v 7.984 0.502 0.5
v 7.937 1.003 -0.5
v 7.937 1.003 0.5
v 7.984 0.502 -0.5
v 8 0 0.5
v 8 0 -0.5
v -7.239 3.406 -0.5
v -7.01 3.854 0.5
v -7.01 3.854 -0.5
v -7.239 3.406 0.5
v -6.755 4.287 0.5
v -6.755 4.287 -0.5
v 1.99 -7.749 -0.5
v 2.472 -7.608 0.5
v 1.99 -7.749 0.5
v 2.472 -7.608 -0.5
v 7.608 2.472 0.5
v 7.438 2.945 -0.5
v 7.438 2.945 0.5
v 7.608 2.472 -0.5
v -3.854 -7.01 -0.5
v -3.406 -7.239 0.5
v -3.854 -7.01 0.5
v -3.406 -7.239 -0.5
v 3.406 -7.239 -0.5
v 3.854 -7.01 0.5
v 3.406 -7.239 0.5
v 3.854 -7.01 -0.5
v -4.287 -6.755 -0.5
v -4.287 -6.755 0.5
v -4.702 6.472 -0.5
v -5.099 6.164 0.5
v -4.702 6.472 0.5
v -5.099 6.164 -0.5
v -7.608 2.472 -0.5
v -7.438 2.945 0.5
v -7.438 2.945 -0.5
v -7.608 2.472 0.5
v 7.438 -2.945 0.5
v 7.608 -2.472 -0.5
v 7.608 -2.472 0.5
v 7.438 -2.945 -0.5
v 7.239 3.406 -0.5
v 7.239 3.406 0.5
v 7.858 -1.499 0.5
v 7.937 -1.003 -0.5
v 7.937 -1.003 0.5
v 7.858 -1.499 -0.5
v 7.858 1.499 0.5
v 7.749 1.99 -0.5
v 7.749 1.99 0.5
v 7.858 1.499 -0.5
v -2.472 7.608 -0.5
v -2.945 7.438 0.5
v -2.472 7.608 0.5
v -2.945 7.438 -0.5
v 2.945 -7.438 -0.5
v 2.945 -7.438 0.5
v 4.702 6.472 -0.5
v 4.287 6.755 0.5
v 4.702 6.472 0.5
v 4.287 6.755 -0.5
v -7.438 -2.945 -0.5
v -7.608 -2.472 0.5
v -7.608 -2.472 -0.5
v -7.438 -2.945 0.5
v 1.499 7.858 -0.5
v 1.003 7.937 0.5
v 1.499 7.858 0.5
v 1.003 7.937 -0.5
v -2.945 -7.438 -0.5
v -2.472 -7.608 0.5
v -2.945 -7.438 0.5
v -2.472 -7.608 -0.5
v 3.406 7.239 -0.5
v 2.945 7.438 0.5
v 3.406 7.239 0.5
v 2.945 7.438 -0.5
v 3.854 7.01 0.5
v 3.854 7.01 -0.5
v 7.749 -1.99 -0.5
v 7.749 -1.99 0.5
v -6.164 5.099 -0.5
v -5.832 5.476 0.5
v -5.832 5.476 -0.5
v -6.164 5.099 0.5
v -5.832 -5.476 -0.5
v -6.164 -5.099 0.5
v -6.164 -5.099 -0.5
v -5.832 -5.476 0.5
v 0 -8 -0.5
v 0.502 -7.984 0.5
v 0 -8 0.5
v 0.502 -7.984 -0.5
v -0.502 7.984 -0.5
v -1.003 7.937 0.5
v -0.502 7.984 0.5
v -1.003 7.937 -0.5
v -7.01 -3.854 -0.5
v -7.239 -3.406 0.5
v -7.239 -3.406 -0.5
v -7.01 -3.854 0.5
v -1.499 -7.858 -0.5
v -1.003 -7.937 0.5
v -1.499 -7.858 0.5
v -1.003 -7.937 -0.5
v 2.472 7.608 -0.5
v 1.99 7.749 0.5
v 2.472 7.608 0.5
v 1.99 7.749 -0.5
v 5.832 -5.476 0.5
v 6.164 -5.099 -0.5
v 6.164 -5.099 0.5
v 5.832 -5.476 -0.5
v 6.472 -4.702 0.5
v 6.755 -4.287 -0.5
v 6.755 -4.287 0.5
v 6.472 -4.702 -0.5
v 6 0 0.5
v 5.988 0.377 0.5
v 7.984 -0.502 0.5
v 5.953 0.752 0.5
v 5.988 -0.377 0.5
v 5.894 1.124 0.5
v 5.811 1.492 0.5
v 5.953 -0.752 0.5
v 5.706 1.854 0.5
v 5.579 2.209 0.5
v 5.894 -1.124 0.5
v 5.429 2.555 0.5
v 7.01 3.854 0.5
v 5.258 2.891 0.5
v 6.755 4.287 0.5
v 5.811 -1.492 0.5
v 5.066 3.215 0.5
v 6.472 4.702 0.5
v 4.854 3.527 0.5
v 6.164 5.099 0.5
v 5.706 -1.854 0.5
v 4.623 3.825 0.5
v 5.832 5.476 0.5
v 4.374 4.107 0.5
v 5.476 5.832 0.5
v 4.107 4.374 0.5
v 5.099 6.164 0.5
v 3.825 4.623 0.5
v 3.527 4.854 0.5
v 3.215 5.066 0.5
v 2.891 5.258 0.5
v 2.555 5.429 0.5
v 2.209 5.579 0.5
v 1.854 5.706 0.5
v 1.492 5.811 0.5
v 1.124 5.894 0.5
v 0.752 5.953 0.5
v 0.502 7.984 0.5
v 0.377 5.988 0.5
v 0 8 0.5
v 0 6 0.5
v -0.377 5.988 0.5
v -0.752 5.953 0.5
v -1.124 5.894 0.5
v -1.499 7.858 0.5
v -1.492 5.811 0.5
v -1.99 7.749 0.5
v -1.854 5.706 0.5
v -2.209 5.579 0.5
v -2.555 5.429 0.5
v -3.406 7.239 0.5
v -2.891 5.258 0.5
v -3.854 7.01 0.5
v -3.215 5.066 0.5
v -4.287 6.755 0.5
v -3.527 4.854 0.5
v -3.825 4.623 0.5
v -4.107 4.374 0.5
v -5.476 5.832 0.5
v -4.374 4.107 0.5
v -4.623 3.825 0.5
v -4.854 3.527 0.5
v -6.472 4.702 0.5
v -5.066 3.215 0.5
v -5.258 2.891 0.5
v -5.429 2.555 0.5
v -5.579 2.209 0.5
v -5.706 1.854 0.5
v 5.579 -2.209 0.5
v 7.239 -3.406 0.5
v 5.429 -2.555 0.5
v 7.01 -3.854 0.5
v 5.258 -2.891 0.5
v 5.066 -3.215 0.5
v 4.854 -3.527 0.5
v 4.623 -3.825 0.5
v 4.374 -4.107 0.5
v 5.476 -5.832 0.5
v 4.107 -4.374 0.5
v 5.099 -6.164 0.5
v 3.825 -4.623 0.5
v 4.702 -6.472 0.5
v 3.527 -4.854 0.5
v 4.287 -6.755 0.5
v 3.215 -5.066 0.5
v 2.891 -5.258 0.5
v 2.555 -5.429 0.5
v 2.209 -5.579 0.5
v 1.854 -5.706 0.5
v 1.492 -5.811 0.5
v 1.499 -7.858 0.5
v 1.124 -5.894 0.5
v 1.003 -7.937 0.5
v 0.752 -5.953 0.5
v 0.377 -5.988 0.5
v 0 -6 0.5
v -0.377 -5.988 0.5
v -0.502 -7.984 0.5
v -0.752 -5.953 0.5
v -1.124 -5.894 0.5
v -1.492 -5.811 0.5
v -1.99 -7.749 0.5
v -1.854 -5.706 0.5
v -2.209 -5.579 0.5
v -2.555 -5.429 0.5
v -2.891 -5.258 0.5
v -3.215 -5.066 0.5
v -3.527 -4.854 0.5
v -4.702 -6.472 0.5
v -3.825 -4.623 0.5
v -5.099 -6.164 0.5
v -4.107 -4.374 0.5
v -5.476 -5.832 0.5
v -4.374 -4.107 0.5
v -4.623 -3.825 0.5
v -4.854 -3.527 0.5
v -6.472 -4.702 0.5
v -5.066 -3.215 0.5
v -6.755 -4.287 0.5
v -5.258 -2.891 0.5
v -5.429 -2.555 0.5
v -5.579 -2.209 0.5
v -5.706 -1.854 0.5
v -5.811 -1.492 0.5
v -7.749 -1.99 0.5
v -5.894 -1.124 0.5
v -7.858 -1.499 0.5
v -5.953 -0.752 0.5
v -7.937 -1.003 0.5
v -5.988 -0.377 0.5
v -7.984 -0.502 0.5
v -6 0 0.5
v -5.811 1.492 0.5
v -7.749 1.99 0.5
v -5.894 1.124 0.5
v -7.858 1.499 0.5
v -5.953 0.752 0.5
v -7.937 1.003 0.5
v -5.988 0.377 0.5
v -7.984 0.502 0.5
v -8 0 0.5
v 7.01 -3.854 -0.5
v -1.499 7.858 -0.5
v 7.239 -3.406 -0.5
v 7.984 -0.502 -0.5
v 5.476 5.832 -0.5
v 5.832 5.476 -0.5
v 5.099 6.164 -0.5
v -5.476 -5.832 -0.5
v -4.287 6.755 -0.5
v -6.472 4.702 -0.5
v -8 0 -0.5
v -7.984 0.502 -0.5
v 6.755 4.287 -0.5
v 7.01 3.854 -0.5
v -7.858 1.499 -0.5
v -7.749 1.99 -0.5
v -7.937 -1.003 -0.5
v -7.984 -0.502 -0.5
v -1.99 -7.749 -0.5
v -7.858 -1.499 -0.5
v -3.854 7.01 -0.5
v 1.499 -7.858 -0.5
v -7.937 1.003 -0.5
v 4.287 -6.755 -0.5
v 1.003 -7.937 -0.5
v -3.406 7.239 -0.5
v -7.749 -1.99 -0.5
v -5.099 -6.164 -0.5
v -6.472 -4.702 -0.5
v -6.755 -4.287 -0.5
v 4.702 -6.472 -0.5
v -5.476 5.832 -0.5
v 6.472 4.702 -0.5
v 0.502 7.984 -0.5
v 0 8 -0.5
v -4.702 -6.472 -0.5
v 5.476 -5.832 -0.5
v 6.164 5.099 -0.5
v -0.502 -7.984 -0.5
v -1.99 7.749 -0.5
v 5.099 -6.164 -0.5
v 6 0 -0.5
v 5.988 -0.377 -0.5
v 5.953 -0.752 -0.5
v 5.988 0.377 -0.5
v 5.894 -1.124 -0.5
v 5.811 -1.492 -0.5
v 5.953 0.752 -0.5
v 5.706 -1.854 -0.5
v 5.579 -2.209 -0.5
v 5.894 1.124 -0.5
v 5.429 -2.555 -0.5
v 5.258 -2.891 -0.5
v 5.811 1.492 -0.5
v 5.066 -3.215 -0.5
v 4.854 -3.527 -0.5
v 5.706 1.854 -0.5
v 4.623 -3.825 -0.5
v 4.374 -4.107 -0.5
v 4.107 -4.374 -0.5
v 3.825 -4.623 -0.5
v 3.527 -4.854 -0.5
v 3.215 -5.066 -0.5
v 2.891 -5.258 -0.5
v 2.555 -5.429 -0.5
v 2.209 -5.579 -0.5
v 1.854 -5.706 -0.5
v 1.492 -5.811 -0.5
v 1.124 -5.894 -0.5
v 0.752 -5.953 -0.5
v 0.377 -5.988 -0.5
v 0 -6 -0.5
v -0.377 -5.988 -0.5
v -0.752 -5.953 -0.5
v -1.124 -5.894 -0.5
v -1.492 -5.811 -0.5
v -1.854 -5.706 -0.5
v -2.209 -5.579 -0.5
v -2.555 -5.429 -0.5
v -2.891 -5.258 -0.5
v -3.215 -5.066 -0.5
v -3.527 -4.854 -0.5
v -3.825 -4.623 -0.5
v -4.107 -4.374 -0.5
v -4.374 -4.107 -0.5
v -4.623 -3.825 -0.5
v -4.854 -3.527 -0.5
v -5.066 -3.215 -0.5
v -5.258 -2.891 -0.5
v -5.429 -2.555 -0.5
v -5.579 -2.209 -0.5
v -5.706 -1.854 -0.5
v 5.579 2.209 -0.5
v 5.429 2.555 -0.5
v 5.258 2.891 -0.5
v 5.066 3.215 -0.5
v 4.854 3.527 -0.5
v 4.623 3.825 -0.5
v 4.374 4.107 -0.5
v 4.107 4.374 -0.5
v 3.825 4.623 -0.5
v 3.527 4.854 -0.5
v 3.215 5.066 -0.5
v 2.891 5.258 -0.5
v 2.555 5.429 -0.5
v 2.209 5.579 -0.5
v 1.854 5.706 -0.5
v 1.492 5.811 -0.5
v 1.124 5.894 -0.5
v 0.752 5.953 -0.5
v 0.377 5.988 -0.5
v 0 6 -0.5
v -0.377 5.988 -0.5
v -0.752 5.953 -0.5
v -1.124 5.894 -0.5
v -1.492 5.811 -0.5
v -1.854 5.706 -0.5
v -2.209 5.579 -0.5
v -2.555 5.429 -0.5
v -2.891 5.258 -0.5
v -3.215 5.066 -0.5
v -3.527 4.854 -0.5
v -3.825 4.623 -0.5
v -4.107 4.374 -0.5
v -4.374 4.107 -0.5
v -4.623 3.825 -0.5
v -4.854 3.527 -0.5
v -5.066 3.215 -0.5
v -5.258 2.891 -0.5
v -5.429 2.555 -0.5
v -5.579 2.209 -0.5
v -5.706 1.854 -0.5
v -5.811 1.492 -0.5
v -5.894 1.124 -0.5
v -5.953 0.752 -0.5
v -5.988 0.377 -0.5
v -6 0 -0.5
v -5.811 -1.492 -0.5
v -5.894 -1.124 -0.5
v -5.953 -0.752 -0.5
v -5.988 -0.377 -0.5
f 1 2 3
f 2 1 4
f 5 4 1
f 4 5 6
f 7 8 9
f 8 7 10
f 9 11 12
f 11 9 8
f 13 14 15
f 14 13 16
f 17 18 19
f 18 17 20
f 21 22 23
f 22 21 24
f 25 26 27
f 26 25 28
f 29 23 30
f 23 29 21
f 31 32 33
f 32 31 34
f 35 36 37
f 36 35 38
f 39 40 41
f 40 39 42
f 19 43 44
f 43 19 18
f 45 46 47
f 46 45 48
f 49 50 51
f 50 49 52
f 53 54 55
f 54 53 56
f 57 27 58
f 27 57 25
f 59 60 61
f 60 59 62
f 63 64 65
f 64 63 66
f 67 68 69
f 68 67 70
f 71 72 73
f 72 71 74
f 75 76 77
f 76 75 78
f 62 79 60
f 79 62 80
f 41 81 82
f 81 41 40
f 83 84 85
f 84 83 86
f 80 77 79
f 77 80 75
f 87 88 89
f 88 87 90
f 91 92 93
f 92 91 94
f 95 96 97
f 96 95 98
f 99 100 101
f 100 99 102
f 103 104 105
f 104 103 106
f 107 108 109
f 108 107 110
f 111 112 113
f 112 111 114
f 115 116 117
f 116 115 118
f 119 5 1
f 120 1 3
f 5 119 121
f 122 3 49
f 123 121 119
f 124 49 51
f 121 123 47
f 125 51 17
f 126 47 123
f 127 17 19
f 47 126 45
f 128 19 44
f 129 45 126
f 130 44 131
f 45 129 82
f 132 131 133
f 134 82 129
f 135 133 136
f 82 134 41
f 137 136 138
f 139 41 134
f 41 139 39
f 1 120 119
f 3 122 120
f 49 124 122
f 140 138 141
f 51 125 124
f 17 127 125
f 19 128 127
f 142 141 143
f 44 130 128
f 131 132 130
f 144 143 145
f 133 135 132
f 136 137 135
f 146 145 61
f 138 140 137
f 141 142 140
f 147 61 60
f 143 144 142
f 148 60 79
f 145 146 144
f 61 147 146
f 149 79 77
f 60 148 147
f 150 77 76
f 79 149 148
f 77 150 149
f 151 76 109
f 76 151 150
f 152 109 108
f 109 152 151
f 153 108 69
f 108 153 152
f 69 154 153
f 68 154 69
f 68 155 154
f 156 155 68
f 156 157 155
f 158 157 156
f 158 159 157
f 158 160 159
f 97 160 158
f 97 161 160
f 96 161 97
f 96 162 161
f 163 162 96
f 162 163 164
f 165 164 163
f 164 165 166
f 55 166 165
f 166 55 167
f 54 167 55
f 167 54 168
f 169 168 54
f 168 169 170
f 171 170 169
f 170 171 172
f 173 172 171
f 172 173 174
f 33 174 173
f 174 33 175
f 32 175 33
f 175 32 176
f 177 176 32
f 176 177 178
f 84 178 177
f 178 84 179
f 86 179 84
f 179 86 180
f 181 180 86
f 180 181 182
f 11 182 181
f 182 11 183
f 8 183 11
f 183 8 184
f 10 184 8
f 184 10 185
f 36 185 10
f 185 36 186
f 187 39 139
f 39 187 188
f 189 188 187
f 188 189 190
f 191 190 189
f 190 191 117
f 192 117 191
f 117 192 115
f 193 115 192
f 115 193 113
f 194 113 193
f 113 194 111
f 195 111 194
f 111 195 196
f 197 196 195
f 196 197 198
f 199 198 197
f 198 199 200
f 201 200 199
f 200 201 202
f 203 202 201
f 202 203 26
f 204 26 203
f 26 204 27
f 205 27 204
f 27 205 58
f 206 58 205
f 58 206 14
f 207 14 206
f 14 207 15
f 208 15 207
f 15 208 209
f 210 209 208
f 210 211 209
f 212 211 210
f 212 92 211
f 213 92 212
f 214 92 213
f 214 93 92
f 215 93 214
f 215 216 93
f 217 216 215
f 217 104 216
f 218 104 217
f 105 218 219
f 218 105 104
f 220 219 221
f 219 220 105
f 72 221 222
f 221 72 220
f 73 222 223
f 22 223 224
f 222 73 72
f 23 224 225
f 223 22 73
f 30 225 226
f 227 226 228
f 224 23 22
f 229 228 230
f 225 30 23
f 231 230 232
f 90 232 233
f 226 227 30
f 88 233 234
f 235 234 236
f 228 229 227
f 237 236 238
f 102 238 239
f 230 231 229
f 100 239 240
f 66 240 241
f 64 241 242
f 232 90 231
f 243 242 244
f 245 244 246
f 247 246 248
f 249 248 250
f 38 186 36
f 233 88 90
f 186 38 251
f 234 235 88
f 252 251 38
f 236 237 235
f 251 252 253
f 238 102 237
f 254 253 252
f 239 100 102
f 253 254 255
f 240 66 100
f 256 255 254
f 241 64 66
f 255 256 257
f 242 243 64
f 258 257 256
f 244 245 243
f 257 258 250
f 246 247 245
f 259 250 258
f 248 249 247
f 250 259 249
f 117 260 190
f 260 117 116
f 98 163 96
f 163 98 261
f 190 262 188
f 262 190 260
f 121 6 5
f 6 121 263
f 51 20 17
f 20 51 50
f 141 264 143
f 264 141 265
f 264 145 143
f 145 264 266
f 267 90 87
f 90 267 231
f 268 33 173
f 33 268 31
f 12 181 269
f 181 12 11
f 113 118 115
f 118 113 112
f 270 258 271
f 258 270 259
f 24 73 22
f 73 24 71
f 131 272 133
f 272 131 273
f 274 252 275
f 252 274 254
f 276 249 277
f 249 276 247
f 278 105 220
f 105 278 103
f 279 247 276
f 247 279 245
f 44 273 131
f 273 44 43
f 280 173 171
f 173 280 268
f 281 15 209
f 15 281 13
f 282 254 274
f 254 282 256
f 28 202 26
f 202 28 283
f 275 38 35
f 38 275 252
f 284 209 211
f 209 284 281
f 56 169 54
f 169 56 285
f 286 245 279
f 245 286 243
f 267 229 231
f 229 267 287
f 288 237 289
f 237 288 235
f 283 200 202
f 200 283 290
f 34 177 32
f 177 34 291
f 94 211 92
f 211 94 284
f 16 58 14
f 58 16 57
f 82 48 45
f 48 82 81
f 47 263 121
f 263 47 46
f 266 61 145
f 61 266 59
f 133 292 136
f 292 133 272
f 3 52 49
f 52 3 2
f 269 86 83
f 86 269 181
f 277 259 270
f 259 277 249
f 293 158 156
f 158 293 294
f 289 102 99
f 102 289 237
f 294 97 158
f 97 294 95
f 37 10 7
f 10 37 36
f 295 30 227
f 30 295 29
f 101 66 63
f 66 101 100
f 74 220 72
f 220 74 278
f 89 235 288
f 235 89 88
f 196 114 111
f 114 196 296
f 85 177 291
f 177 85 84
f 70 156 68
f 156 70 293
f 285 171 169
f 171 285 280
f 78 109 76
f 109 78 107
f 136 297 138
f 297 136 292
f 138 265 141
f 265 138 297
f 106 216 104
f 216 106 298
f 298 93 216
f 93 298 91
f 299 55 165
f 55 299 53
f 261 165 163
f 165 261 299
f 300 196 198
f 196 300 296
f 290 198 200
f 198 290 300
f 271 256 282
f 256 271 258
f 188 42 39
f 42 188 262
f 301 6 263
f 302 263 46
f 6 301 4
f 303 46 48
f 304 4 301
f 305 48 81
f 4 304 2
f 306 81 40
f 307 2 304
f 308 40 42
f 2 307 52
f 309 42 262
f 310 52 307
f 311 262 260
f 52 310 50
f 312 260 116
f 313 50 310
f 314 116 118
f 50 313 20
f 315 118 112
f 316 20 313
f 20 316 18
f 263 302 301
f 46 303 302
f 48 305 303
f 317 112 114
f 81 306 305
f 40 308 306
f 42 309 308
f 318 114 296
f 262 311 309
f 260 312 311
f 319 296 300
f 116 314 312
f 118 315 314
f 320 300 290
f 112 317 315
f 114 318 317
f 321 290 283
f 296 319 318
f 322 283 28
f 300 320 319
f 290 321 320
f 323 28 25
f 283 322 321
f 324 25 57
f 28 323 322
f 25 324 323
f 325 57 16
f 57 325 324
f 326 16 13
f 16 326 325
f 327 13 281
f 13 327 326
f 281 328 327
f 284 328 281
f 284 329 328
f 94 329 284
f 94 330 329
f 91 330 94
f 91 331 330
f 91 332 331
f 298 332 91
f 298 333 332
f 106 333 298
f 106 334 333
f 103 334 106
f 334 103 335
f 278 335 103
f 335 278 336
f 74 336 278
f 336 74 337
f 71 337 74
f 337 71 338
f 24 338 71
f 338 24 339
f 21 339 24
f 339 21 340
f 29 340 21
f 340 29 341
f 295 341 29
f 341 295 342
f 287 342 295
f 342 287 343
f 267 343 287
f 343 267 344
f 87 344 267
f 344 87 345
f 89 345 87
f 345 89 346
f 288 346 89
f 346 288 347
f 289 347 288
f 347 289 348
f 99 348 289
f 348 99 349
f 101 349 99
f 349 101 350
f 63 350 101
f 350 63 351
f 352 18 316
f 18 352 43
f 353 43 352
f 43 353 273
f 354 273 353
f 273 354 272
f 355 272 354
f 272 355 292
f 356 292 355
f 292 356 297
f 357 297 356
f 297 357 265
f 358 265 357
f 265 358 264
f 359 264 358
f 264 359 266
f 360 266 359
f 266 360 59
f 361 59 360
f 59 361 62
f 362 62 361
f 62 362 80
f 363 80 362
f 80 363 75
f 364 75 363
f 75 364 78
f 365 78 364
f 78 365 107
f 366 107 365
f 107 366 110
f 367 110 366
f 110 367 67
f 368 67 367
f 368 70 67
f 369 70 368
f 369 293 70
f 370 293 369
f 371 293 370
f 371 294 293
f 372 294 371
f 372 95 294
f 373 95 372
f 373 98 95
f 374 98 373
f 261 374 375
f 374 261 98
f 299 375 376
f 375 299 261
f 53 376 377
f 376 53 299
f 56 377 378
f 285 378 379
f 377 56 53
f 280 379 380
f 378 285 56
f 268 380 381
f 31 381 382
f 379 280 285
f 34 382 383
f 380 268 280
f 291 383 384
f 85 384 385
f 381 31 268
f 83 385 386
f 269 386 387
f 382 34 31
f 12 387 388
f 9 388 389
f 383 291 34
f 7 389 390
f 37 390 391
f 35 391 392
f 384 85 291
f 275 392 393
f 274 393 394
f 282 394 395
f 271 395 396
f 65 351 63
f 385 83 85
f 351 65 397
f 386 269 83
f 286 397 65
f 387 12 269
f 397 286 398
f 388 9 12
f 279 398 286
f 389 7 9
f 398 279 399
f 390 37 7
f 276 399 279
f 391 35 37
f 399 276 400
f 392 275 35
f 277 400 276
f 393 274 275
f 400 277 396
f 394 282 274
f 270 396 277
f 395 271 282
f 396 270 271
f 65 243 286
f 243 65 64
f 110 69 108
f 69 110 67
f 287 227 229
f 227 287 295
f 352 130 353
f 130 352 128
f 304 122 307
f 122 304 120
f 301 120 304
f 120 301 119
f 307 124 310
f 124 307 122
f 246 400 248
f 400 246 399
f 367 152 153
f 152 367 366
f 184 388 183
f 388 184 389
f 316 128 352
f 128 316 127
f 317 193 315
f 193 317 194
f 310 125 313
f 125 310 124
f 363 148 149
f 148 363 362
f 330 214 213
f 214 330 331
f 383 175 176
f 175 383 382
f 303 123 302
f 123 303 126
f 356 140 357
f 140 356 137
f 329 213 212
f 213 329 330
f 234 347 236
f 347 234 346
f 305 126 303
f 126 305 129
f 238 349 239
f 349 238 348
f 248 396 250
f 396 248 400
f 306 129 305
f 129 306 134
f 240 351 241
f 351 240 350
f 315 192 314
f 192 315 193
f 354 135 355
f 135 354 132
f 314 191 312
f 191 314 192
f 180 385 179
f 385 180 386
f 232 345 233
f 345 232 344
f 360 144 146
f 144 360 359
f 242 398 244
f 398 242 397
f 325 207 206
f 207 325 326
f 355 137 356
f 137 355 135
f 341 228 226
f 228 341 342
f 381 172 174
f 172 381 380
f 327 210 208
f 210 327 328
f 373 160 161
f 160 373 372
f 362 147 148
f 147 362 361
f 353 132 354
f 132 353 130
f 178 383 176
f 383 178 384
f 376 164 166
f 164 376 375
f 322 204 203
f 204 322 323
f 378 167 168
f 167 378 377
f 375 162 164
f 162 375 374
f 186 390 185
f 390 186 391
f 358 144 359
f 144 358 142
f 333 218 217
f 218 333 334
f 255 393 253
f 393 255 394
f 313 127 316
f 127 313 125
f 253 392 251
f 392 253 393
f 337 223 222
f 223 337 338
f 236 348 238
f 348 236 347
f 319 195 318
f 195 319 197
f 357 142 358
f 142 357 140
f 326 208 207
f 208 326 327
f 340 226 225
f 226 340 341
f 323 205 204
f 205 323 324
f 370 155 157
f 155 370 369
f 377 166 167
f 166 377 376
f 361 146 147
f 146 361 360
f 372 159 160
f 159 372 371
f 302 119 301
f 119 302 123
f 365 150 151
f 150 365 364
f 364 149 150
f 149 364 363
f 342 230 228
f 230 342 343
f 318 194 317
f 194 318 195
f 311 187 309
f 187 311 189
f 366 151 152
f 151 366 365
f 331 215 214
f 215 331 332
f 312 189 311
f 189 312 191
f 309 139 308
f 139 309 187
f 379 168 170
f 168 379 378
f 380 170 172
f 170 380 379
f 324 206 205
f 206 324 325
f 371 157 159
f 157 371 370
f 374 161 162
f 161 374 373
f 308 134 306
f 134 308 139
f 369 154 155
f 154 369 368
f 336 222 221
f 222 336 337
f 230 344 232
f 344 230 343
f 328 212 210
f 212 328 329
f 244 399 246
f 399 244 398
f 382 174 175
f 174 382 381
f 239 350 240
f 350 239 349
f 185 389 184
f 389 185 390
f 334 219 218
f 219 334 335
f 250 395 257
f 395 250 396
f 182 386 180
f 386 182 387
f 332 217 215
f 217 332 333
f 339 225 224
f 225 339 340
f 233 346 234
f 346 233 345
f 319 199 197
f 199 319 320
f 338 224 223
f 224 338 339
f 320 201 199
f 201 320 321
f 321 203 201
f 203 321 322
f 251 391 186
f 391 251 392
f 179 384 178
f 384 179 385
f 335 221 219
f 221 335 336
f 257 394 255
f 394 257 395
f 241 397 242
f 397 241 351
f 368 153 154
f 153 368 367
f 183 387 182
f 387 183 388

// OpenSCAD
module dinRing()
{
    difference()
    {
        cylinder(h=1, d=16, center=true, $fn=100);
        cylinder(h=2, d=12, center=true, $fn=100);
    }
}

dinRing();
